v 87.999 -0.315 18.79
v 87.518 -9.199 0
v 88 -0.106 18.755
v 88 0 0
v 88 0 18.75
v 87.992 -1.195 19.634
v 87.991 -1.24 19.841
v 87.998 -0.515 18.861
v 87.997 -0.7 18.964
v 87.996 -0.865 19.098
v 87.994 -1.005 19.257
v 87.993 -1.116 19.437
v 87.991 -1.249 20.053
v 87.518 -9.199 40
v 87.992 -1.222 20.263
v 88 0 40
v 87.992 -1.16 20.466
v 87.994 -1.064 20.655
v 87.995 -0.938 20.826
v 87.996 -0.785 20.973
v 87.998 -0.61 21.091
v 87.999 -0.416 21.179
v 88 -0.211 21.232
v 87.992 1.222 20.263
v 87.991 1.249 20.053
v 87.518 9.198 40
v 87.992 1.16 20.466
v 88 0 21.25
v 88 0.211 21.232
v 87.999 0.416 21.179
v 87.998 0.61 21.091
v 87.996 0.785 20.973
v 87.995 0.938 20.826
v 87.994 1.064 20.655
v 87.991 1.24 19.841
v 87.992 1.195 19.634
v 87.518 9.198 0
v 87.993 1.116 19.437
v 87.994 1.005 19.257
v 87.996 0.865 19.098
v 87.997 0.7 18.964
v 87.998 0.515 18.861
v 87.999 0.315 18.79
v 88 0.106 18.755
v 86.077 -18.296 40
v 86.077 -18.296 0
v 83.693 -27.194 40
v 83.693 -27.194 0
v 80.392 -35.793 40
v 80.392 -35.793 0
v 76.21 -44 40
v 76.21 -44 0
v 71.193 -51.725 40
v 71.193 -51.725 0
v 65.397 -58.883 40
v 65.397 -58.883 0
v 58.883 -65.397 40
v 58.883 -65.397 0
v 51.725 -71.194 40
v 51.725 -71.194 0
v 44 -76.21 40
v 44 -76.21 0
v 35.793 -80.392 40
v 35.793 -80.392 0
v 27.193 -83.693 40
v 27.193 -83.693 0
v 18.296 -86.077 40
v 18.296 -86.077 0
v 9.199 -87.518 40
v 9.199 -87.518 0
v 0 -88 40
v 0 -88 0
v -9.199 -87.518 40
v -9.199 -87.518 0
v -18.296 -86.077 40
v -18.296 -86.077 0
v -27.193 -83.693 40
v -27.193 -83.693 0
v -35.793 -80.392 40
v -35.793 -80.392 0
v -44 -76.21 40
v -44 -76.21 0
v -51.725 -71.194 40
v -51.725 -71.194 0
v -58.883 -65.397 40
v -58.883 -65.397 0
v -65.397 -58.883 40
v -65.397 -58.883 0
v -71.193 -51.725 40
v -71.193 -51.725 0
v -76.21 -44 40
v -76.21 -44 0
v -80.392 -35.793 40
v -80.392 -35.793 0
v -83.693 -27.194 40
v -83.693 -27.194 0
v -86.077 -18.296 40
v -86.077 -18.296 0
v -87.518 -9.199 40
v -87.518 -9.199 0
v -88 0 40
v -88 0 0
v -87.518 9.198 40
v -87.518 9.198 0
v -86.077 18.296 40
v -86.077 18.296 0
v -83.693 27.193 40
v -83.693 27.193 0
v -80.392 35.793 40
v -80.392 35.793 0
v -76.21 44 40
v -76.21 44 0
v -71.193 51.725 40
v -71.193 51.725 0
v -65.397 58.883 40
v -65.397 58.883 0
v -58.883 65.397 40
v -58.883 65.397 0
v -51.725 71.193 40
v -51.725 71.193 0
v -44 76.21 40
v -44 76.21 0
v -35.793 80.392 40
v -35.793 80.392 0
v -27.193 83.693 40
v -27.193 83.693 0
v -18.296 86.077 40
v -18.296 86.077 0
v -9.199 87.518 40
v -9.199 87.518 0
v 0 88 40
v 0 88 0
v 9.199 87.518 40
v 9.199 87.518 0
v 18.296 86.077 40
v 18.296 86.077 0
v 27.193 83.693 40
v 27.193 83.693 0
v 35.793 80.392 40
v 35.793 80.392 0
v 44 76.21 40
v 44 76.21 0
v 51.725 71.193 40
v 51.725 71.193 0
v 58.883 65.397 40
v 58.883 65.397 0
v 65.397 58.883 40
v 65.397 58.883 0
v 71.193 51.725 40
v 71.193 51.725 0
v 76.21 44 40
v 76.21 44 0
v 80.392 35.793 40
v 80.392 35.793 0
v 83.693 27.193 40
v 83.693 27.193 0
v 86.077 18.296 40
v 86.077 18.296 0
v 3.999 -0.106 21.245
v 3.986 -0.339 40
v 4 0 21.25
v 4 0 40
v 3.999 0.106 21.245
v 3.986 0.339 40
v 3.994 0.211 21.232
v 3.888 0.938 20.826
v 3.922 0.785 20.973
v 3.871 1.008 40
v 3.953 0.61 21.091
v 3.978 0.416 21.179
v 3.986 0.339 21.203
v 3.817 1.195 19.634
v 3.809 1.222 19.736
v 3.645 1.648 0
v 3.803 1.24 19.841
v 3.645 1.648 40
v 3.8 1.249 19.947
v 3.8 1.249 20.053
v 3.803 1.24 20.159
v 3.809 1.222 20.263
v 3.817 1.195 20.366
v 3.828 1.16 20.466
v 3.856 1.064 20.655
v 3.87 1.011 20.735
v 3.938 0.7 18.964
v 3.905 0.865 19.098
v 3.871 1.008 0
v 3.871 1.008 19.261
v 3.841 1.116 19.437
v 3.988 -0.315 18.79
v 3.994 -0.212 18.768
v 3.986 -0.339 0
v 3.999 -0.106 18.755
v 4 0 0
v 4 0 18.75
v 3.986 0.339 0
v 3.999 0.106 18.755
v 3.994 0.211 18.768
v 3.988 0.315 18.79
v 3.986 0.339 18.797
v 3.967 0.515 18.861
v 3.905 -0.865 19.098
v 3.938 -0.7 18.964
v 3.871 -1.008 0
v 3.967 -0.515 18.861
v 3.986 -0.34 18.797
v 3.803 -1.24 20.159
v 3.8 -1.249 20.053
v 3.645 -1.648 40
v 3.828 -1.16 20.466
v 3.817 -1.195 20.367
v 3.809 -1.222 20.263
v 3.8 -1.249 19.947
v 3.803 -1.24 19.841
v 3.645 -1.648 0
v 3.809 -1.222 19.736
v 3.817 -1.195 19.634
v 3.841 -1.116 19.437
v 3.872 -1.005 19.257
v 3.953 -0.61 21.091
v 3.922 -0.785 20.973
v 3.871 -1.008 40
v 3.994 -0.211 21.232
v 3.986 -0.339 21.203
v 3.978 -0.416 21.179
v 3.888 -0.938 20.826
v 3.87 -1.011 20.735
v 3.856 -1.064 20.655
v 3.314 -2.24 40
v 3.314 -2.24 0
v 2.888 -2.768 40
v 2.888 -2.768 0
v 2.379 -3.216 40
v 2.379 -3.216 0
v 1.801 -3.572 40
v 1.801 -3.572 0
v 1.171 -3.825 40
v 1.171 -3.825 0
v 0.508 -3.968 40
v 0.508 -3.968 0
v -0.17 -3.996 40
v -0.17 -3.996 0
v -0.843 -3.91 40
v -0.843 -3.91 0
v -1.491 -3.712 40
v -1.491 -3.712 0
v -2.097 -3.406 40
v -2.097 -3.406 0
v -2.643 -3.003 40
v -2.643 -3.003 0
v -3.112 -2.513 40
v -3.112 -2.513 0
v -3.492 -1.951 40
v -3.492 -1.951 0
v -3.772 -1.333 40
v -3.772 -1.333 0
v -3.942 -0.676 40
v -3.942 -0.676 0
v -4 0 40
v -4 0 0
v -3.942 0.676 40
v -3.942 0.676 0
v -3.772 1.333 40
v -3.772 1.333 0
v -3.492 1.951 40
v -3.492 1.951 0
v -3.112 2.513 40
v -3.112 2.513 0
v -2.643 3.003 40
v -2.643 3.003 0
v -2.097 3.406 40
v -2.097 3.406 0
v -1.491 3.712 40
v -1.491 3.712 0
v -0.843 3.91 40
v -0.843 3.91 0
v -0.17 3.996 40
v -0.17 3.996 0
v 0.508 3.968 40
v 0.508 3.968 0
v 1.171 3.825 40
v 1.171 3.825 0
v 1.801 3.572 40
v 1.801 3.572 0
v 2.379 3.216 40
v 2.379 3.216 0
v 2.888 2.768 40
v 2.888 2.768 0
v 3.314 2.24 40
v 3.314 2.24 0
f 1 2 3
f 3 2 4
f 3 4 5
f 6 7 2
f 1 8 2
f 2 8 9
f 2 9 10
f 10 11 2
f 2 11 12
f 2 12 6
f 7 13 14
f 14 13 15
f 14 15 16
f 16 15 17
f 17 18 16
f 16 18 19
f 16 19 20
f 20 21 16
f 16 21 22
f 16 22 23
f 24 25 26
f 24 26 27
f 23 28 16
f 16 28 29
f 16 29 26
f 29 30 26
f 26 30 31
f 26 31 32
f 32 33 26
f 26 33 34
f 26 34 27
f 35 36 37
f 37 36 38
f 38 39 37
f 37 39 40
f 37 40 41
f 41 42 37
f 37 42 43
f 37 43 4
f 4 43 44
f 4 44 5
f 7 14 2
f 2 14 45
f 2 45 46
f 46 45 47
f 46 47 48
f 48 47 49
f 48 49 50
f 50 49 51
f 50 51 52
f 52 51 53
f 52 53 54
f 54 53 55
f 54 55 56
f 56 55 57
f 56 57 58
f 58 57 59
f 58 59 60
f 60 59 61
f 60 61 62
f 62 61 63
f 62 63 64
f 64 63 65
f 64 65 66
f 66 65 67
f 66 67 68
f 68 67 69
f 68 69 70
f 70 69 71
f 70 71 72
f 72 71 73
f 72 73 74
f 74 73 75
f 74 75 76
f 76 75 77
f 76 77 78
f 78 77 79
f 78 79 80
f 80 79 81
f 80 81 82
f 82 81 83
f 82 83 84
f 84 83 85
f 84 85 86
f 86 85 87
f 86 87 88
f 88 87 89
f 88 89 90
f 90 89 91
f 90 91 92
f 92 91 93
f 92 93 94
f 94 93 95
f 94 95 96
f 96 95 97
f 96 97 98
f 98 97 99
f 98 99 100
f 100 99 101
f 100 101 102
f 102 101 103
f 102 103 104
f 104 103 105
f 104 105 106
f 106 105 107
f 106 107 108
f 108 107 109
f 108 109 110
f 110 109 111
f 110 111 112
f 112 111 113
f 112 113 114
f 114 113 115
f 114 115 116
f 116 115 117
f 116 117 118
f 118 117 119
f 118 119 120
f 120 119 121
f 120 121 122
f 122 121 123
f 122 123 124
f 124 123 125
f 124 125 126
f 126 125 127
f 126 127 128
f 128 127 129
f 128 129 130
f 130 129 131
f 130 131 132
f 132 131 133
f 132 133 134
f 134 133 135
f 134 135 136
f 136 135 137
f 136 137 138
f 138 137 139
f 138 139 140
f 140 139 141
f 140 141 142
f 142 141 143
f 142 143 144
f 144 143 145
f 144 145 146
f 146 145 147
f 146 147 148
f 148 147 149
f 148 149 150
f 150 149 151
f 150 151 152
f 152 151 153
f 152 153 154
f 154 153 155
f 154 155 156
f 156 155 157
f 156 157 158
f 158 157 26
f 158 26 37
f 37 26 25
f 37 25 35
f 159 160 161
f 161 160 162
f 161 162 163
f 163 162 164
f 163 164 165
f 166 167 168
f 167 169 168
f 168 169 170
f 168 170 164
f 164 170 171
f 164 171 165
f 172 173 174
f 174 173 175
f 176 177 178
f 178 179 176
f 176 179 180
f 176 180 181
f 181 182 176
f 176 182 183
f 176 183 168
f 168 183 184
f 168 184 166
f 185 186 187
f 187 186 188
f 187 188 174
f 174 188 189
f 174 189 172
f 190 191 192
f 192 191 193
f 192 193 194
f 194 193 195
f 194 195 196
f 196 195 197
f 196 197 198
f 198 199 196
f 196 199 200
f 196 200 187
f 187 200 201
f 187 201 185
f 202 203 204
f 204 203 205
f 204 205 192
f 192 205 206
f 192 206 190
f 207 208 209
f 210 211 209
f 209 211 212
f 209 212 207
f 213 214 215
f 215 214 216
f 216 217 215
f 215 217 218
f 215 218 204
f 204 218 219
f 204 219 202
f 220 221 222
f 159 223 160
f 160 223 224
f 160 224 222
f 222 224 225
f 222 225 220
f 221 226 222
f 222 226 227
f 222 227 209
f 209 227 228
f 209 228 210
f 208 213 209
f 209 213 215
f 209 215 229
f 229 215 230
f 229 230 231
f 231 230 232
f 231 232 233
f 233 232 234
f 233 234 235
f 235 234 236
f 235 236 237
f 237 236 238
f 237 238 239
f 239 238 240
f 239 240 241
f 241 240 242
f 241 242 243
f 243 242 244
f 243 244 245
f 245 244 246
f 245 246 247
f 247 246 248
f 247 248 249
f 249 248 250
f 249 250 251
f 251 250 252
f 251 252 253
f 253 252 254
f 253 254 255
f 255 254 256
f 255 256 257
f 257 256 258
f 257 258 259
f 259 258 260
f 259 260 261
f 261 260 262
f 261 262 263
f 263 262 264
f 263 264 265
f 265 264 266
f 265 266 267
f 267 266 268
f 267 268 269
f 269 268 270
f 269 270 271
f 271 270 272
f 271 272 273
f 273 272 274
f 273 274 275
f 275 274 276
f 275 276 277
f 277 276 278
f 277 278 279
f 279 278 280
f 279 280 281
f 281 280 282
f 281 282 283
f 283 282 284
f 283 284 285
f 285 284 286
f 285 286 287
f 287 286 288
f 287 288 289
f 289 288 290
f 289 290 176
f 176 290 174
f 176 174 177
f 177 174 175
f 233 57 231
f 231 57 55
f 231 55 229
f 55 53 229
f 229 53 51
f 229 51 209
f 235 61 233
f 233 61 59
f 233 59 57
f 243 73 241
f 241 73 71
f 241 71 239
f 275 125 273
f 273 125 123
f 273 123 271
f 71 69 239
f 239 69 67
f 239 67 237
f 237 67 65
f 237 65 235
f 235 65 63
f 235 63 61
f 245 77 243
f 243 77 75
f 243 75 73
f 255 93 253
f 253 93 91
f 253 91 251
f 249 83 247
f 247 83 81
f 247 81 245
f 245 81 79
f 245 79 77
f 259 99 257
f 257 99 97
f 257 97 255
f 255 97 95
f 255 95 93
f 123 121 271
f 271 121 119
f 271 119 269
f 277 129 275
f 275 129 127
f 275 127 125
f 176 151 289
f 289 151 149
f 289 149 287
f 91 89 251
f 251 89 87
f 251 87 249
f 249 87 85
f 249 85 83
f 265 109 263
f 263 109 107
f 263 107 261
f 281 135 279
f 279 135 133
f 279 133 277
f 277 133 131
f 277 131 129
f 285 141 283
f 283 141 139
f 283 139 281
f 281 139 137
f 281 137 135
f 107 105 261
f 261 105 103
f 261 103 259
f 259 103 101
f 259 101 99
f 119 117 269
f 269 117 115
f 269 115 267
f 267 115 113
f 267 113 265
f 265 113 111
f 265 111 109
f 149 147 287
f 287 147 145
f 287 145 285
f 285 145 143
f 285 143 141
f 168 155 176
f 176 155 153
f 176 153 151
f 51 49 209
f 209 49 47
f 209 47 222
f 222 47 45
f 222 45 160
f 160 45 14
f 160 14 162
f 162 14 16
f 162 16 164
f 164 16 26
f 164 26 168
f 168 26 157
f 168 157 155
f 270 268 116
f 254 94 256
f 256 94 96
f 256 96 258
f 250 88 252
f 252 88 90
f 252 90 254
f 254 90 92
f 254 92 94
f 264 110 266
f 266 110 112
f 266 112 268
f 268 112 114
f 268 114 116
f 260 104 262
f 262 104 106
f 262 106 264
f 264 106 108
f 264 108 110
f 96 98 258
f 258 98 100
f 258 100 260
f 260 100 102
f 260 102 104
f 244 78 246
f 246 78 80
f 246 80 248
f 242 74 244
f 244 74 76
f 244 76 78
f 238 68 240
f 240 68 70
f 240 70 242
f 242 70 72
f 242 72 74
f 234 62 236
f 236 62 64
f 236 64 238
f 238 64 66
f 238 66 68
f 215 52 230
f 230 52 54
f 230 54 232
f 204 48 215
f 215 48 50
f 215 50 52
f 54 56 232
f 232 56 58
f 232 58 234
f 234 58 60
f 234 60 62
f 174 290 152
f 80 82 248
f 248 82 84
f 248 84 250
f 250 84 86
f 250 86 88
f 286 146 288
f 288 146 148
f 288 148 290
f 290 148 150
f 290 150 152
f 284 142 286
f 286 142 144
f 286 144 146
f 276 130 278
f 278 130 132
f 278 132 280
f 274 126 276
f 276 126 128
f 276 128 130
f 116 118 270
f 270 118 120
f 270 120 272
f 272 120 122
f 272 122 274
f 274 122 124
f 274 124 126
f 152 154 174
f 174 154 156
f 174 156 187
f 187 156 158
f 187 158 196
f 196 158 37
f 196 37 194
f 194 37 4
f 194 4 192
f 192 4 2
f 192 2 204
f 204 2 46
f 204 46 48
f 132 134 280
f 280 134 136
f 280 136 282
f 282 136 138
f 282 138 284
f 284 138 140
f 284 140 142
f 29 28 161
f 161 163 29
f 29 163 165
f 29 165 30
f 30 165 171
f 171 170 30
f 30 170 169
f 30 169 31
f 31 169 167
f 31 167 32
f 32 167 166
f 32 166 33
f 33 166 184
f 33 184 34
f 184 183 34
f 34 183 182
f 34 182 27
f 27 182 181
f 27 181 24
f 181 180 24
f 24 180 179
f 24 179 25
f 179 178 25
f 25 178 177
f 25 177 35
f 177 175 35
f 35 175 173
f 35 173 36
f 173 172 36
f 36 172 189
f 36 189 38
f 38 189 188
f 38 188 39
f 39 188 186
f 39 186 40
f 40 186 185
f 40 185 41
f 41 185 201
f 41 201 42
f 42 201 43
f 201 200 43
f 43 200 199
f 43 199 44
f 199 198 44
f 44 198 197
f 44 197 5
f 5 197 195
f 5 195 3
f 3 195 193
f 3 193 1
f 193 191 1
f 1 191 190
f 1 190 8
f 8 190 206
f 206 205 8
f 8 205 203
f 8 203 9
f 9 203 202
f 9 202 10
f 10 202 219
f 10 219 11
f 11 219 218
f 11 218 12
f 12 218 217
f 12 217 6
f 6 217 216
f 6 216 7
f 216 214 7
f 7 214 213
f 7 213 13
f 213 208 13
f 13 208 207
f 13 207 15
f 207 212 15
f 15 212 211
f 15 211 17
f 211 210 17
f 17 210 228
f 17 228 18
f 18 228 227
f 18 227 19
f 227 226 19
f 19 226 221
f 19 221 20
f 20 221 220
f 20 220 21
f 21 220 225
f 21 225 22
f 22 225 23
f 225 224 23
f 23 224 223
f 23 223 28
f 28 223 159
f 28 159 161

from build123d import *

# Parameters (mm, degrees)
SKETCH1_R         = 88
HUB_DEPTH         = 40
SKETCH2_R         = 4
BORE_DEPTH        = 40
SKETCH3_R         = 1.25
CLAMP_SCREW_DEPTH = 85


with BuildPart() as part:
    # Sketch1 → Hub (new body)
    with BuildSketch(Plane.XY):
        Circle(SKETCH1_R)
    extrude(amount=HUB_DEPTH)

    # Sketch2 → Bore (cut)
    with BuildSketch(Plane.XY):
        Circle(SKETCH2_R)
    extrude(amount=BORE_DEPTH, mode=Mode.SUBTRACT)

    # Sketch3 → Clamp_screw (cut)
    with BuildSketch(Plane(origin=(3.5, 0, 0), x_dir=(0, 0, -1), z_dir=(1, 0, 0))):
        with Locations(Location((-20, 0, 0), (0, 0, 180))):
            Circle(SKETCH3_R)
    extrude(amount=CLAMP_SCREW_DEPTH, mode=Mode.SUBTRACT)


solid = part.part
